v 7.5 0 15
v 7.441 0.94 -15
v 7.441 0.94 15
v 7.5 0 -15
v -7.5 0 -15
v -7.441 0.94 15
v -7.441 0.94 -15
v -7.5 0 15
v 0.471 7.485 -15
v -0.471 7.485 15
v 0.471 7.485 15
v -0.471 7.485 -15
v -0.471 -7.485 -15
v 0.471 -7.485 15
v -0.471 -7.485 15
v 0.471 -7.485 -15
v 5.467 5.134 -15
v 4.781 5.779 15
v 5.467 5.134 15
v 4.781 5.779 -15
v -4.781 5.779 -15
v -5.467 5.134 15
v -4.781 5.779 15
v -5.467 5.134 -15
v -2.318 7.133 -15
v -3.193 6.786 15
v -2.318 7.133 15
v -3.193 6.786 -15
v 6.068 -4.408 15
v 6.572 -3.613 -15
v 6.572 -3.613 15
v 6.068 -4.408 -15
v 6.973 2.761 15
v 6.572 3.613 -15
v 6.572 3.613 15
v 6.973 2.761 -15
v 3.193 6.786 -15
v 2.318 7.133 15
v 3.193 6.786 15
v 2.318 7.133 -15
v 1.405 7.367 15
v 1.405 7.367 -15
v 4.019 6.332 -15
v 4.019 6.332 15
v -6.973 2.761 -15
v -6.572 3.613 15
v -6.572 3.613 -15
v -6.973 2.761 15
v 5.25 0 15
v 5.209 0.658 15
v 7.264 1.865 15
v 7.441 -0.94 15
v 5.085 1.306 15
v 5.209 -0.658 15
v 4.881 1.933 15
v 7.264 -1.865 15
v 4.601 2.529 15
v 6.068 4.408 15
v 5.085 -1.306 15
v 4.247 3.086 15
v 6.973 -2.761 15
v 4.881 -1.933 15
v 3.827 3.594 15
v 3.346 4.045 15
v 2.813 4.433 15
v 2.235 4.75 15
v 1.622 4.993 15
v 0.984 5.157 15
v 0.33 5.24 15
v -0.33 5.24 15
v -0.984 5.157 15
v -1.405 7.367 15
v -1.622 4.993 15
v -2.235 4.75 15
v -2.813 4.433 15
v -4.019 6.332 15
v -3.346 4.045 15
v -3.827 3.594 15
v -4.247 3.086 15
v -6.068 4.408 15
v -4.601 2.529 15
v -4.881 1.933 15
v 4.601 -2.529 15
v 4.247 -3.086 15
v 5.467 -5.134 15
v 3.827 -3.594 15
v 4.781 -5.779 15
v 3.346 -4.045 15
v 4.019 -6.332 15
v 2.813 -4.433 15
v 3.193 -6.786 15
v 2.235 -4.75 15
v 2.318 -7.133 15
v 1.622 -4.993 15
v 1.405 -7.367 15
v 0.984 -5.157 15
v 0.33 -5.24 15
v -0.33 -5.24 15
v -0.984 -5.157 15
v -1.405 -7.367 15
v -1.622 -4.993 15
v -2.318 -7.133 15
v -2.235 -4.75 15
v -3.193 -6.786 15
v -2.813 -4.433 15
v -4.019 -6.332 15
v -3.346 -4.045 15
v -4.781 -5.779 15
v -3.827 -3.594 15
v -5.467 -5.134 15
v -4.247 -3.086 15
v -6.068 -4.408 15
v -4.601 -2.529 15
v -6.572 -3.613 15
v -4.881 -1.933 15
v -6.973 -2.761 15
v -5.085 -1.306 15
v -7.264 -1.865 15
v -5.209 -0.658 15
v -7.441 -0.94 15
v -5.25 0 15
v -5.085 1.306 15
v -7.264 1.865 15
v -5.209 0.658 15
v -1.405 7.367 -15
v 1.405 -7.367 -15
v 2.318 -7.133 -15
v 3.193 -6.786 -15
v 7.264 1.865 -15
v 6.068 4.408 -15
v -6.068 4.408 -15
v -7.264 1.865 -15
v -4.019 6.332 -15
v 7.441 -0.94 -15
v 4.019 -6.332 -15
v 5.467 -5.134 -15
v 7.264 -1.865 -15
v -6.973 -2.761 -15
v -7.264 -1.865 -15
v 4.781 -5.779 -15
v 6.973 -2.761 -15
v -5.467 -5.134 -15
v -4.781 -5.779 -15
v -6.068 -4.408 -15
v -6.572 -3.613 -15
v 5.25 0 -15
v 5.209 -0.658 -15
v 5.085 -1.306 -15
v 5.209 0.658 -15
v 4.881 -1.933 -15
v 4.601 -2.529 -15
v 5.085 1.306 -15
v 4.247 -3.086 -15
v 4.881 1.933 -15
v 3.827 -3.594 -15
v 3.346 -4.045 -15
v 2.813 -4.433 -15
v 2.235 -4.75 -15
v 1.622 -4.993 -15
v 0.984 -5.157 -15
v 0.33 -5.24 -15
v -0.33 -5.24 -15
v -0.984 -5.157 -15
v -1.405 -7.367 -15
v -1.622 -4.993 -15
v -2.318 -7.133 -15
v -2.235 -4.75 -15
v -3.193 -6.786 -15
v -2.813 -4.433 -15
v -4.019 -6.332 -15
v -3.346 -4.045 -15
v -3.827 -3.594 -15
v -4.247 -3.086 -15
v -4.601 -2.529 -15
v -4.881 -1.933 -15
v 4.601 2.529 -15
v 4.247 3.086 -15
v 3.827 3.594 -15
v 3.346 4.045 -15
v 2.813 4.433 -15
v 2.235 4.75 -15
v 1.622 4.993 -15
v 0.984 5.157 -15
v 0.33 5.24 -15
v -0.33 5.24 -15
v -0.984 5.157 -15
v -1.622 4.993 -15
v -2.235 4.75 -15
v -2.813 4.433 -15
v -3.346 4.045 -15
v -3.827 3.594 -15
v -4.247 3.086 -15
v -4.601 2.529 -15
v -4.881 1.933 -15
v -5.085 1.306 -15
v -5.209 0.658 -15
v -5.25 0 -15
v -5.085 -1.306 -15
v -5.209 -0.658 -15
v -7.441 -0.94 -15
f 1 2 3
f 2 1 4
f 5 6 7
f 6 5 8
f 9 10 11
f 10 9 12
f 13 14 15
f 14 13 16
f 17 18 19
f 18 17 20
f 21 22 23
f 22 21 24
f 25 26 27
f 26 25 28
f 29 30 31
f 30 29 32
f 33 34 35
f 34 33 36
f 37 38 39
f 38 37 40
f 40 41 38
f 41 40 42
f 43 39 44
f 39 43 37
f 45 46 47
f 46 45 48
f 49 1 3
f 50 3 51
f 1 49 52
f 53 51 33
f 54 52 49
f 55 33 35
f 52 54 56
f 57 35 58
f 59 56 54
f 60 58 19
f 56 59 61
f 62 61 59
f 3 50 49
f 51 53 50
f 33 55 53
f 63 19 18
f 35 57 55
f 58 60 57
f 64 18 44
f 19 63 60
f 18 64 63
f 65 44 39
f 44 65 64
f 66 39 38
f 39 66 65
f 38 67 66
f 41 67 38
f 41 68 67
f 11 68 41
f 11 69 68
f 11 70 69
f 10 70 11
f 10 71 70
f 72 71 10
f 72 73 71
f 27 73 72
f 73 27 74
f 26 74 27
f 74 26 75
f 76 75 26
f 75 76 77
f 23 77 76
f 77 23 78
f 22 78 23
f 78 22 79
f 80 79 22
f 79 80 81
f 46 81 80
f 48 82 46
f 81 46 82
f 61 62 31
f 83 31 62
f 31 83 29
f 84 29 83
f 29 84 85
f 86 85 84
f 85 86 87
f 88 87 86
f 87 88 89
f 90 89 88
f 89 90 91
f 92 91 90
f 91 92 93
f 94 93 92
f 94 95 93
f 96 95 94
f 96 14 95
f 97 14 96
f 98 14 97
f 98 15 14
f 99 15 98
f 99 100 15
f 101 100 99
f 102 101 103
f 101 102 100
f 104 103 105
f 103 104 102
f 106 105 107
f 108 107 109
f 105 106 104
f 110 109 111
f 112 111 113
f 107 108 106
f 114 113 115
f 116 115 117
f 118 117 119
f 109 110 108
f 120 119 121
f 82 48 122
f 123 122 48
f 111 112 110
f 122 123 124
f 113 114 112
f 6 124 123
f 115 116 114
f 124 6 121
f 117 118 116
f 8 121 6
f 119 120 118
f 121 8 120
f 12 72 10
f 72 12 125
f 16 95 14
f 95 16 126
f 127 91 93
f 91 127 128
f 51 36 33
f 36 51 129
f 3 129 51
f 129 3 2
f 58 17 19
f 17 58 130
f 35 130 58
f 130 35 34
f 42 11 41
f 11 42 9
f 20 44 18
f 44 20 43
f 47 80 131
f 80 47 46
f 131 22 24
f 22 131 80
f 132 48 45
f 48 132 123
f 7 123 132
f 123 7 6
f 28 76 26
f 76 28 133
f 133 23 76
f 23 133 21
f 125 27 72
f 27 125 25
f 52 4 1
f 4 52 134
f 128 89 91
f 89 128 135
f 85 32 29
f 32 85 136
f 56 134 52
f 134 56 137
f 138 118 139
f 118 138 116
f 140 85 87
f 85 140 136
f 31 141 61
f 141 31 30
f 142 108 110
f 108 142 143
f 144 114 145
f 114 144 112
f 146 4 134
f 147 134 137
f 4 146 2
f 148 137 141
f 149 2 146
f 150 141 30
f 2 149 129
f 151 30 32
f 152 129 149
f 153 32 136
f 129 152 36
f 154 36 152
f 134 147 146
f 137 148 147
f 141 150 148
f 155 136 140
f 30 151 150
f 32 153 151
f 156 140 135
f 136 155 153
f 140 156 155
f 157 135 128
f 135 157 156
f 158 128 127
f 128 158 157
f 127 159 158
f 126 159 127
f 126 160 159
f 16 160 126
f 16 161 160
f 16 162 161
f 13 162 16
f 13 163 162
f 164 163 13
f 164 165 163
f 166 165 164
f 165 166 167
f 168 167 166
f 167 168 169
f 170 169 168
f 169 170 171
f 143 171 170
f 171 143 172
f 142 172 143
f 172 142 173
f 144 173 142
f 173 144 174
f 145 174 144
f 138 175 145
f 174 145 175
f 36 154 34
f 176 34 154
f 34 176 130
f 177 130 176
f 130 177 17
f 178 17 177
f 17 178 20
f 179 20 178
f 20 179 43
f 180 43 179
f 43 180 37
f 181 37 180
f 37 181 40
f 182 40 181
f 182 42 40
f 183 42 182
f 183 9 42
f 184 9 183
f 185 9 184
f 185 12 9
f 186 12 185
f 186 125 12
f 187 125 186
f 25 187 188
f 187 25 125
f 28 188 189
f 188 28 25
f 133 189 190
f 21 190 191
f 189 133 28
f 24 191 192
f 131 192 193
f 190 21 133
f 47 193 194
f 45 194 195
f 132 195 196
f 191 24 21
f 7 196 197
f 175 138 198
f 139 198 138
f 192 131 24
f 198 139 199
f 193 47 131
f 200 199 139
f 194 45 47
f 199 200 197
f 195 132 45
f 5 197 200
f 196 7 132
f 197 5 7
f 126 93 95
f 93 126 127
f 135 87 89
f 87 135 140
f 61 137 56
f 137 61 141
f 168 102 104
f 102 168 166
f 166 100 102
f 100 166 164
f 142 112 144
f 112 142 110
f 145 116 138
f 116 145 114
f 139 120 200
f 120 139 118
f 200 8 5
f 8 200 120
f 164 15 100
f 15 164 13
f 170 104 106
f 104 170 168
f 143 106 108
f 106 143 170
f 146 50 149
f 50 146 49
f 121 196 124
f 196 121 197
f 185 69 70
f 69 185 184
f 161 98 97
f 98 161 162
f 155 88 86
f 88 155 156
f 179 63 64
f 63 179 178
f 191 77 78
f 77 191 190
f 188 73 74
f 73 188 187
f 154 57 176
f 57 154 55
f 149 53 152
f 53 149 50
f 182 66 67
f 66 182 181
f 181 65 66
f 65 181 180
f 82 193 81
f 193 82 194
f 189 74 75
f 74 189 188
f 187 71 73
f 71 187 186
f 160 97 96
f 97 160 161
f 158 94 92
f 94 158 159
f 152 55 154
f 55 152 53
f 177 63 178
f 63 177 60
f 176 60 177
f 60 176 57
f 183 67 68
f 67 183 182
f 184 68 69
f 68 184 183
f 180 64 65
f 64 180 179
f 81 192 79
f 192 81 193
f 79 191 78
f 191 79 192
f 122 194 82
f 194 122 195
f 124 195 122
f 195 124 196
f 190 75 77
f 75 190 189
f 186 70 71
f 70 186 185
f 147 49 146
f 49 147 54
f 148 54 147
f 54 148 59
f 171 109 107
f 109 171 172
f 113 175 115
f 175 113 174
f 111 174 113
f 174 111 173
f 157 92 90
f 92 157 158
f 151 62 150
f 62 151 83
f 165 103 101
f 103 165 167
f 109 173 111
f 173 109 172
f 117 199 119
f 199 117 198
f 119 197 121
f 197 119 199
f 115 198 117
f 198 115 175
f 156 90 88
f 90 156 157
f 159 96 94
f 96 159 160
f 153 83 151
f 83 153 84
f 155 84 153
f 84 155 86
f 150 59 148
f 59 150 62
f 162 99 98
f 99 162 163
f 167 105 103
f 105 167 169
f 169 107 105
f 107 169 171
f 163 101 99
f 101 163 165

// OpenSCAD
$fn = 50;


difference() {
	union() {
		translate(v = [0, 0, -15.0000000000]) {
			cylinder(h = 30, r = 7.5000000000);
		}
	}
	union() {
		translate(v = [0, 0, -100.0000000000]) {
			cylinder(h = 200, r = 5.2500000000);
		}
	}
}
